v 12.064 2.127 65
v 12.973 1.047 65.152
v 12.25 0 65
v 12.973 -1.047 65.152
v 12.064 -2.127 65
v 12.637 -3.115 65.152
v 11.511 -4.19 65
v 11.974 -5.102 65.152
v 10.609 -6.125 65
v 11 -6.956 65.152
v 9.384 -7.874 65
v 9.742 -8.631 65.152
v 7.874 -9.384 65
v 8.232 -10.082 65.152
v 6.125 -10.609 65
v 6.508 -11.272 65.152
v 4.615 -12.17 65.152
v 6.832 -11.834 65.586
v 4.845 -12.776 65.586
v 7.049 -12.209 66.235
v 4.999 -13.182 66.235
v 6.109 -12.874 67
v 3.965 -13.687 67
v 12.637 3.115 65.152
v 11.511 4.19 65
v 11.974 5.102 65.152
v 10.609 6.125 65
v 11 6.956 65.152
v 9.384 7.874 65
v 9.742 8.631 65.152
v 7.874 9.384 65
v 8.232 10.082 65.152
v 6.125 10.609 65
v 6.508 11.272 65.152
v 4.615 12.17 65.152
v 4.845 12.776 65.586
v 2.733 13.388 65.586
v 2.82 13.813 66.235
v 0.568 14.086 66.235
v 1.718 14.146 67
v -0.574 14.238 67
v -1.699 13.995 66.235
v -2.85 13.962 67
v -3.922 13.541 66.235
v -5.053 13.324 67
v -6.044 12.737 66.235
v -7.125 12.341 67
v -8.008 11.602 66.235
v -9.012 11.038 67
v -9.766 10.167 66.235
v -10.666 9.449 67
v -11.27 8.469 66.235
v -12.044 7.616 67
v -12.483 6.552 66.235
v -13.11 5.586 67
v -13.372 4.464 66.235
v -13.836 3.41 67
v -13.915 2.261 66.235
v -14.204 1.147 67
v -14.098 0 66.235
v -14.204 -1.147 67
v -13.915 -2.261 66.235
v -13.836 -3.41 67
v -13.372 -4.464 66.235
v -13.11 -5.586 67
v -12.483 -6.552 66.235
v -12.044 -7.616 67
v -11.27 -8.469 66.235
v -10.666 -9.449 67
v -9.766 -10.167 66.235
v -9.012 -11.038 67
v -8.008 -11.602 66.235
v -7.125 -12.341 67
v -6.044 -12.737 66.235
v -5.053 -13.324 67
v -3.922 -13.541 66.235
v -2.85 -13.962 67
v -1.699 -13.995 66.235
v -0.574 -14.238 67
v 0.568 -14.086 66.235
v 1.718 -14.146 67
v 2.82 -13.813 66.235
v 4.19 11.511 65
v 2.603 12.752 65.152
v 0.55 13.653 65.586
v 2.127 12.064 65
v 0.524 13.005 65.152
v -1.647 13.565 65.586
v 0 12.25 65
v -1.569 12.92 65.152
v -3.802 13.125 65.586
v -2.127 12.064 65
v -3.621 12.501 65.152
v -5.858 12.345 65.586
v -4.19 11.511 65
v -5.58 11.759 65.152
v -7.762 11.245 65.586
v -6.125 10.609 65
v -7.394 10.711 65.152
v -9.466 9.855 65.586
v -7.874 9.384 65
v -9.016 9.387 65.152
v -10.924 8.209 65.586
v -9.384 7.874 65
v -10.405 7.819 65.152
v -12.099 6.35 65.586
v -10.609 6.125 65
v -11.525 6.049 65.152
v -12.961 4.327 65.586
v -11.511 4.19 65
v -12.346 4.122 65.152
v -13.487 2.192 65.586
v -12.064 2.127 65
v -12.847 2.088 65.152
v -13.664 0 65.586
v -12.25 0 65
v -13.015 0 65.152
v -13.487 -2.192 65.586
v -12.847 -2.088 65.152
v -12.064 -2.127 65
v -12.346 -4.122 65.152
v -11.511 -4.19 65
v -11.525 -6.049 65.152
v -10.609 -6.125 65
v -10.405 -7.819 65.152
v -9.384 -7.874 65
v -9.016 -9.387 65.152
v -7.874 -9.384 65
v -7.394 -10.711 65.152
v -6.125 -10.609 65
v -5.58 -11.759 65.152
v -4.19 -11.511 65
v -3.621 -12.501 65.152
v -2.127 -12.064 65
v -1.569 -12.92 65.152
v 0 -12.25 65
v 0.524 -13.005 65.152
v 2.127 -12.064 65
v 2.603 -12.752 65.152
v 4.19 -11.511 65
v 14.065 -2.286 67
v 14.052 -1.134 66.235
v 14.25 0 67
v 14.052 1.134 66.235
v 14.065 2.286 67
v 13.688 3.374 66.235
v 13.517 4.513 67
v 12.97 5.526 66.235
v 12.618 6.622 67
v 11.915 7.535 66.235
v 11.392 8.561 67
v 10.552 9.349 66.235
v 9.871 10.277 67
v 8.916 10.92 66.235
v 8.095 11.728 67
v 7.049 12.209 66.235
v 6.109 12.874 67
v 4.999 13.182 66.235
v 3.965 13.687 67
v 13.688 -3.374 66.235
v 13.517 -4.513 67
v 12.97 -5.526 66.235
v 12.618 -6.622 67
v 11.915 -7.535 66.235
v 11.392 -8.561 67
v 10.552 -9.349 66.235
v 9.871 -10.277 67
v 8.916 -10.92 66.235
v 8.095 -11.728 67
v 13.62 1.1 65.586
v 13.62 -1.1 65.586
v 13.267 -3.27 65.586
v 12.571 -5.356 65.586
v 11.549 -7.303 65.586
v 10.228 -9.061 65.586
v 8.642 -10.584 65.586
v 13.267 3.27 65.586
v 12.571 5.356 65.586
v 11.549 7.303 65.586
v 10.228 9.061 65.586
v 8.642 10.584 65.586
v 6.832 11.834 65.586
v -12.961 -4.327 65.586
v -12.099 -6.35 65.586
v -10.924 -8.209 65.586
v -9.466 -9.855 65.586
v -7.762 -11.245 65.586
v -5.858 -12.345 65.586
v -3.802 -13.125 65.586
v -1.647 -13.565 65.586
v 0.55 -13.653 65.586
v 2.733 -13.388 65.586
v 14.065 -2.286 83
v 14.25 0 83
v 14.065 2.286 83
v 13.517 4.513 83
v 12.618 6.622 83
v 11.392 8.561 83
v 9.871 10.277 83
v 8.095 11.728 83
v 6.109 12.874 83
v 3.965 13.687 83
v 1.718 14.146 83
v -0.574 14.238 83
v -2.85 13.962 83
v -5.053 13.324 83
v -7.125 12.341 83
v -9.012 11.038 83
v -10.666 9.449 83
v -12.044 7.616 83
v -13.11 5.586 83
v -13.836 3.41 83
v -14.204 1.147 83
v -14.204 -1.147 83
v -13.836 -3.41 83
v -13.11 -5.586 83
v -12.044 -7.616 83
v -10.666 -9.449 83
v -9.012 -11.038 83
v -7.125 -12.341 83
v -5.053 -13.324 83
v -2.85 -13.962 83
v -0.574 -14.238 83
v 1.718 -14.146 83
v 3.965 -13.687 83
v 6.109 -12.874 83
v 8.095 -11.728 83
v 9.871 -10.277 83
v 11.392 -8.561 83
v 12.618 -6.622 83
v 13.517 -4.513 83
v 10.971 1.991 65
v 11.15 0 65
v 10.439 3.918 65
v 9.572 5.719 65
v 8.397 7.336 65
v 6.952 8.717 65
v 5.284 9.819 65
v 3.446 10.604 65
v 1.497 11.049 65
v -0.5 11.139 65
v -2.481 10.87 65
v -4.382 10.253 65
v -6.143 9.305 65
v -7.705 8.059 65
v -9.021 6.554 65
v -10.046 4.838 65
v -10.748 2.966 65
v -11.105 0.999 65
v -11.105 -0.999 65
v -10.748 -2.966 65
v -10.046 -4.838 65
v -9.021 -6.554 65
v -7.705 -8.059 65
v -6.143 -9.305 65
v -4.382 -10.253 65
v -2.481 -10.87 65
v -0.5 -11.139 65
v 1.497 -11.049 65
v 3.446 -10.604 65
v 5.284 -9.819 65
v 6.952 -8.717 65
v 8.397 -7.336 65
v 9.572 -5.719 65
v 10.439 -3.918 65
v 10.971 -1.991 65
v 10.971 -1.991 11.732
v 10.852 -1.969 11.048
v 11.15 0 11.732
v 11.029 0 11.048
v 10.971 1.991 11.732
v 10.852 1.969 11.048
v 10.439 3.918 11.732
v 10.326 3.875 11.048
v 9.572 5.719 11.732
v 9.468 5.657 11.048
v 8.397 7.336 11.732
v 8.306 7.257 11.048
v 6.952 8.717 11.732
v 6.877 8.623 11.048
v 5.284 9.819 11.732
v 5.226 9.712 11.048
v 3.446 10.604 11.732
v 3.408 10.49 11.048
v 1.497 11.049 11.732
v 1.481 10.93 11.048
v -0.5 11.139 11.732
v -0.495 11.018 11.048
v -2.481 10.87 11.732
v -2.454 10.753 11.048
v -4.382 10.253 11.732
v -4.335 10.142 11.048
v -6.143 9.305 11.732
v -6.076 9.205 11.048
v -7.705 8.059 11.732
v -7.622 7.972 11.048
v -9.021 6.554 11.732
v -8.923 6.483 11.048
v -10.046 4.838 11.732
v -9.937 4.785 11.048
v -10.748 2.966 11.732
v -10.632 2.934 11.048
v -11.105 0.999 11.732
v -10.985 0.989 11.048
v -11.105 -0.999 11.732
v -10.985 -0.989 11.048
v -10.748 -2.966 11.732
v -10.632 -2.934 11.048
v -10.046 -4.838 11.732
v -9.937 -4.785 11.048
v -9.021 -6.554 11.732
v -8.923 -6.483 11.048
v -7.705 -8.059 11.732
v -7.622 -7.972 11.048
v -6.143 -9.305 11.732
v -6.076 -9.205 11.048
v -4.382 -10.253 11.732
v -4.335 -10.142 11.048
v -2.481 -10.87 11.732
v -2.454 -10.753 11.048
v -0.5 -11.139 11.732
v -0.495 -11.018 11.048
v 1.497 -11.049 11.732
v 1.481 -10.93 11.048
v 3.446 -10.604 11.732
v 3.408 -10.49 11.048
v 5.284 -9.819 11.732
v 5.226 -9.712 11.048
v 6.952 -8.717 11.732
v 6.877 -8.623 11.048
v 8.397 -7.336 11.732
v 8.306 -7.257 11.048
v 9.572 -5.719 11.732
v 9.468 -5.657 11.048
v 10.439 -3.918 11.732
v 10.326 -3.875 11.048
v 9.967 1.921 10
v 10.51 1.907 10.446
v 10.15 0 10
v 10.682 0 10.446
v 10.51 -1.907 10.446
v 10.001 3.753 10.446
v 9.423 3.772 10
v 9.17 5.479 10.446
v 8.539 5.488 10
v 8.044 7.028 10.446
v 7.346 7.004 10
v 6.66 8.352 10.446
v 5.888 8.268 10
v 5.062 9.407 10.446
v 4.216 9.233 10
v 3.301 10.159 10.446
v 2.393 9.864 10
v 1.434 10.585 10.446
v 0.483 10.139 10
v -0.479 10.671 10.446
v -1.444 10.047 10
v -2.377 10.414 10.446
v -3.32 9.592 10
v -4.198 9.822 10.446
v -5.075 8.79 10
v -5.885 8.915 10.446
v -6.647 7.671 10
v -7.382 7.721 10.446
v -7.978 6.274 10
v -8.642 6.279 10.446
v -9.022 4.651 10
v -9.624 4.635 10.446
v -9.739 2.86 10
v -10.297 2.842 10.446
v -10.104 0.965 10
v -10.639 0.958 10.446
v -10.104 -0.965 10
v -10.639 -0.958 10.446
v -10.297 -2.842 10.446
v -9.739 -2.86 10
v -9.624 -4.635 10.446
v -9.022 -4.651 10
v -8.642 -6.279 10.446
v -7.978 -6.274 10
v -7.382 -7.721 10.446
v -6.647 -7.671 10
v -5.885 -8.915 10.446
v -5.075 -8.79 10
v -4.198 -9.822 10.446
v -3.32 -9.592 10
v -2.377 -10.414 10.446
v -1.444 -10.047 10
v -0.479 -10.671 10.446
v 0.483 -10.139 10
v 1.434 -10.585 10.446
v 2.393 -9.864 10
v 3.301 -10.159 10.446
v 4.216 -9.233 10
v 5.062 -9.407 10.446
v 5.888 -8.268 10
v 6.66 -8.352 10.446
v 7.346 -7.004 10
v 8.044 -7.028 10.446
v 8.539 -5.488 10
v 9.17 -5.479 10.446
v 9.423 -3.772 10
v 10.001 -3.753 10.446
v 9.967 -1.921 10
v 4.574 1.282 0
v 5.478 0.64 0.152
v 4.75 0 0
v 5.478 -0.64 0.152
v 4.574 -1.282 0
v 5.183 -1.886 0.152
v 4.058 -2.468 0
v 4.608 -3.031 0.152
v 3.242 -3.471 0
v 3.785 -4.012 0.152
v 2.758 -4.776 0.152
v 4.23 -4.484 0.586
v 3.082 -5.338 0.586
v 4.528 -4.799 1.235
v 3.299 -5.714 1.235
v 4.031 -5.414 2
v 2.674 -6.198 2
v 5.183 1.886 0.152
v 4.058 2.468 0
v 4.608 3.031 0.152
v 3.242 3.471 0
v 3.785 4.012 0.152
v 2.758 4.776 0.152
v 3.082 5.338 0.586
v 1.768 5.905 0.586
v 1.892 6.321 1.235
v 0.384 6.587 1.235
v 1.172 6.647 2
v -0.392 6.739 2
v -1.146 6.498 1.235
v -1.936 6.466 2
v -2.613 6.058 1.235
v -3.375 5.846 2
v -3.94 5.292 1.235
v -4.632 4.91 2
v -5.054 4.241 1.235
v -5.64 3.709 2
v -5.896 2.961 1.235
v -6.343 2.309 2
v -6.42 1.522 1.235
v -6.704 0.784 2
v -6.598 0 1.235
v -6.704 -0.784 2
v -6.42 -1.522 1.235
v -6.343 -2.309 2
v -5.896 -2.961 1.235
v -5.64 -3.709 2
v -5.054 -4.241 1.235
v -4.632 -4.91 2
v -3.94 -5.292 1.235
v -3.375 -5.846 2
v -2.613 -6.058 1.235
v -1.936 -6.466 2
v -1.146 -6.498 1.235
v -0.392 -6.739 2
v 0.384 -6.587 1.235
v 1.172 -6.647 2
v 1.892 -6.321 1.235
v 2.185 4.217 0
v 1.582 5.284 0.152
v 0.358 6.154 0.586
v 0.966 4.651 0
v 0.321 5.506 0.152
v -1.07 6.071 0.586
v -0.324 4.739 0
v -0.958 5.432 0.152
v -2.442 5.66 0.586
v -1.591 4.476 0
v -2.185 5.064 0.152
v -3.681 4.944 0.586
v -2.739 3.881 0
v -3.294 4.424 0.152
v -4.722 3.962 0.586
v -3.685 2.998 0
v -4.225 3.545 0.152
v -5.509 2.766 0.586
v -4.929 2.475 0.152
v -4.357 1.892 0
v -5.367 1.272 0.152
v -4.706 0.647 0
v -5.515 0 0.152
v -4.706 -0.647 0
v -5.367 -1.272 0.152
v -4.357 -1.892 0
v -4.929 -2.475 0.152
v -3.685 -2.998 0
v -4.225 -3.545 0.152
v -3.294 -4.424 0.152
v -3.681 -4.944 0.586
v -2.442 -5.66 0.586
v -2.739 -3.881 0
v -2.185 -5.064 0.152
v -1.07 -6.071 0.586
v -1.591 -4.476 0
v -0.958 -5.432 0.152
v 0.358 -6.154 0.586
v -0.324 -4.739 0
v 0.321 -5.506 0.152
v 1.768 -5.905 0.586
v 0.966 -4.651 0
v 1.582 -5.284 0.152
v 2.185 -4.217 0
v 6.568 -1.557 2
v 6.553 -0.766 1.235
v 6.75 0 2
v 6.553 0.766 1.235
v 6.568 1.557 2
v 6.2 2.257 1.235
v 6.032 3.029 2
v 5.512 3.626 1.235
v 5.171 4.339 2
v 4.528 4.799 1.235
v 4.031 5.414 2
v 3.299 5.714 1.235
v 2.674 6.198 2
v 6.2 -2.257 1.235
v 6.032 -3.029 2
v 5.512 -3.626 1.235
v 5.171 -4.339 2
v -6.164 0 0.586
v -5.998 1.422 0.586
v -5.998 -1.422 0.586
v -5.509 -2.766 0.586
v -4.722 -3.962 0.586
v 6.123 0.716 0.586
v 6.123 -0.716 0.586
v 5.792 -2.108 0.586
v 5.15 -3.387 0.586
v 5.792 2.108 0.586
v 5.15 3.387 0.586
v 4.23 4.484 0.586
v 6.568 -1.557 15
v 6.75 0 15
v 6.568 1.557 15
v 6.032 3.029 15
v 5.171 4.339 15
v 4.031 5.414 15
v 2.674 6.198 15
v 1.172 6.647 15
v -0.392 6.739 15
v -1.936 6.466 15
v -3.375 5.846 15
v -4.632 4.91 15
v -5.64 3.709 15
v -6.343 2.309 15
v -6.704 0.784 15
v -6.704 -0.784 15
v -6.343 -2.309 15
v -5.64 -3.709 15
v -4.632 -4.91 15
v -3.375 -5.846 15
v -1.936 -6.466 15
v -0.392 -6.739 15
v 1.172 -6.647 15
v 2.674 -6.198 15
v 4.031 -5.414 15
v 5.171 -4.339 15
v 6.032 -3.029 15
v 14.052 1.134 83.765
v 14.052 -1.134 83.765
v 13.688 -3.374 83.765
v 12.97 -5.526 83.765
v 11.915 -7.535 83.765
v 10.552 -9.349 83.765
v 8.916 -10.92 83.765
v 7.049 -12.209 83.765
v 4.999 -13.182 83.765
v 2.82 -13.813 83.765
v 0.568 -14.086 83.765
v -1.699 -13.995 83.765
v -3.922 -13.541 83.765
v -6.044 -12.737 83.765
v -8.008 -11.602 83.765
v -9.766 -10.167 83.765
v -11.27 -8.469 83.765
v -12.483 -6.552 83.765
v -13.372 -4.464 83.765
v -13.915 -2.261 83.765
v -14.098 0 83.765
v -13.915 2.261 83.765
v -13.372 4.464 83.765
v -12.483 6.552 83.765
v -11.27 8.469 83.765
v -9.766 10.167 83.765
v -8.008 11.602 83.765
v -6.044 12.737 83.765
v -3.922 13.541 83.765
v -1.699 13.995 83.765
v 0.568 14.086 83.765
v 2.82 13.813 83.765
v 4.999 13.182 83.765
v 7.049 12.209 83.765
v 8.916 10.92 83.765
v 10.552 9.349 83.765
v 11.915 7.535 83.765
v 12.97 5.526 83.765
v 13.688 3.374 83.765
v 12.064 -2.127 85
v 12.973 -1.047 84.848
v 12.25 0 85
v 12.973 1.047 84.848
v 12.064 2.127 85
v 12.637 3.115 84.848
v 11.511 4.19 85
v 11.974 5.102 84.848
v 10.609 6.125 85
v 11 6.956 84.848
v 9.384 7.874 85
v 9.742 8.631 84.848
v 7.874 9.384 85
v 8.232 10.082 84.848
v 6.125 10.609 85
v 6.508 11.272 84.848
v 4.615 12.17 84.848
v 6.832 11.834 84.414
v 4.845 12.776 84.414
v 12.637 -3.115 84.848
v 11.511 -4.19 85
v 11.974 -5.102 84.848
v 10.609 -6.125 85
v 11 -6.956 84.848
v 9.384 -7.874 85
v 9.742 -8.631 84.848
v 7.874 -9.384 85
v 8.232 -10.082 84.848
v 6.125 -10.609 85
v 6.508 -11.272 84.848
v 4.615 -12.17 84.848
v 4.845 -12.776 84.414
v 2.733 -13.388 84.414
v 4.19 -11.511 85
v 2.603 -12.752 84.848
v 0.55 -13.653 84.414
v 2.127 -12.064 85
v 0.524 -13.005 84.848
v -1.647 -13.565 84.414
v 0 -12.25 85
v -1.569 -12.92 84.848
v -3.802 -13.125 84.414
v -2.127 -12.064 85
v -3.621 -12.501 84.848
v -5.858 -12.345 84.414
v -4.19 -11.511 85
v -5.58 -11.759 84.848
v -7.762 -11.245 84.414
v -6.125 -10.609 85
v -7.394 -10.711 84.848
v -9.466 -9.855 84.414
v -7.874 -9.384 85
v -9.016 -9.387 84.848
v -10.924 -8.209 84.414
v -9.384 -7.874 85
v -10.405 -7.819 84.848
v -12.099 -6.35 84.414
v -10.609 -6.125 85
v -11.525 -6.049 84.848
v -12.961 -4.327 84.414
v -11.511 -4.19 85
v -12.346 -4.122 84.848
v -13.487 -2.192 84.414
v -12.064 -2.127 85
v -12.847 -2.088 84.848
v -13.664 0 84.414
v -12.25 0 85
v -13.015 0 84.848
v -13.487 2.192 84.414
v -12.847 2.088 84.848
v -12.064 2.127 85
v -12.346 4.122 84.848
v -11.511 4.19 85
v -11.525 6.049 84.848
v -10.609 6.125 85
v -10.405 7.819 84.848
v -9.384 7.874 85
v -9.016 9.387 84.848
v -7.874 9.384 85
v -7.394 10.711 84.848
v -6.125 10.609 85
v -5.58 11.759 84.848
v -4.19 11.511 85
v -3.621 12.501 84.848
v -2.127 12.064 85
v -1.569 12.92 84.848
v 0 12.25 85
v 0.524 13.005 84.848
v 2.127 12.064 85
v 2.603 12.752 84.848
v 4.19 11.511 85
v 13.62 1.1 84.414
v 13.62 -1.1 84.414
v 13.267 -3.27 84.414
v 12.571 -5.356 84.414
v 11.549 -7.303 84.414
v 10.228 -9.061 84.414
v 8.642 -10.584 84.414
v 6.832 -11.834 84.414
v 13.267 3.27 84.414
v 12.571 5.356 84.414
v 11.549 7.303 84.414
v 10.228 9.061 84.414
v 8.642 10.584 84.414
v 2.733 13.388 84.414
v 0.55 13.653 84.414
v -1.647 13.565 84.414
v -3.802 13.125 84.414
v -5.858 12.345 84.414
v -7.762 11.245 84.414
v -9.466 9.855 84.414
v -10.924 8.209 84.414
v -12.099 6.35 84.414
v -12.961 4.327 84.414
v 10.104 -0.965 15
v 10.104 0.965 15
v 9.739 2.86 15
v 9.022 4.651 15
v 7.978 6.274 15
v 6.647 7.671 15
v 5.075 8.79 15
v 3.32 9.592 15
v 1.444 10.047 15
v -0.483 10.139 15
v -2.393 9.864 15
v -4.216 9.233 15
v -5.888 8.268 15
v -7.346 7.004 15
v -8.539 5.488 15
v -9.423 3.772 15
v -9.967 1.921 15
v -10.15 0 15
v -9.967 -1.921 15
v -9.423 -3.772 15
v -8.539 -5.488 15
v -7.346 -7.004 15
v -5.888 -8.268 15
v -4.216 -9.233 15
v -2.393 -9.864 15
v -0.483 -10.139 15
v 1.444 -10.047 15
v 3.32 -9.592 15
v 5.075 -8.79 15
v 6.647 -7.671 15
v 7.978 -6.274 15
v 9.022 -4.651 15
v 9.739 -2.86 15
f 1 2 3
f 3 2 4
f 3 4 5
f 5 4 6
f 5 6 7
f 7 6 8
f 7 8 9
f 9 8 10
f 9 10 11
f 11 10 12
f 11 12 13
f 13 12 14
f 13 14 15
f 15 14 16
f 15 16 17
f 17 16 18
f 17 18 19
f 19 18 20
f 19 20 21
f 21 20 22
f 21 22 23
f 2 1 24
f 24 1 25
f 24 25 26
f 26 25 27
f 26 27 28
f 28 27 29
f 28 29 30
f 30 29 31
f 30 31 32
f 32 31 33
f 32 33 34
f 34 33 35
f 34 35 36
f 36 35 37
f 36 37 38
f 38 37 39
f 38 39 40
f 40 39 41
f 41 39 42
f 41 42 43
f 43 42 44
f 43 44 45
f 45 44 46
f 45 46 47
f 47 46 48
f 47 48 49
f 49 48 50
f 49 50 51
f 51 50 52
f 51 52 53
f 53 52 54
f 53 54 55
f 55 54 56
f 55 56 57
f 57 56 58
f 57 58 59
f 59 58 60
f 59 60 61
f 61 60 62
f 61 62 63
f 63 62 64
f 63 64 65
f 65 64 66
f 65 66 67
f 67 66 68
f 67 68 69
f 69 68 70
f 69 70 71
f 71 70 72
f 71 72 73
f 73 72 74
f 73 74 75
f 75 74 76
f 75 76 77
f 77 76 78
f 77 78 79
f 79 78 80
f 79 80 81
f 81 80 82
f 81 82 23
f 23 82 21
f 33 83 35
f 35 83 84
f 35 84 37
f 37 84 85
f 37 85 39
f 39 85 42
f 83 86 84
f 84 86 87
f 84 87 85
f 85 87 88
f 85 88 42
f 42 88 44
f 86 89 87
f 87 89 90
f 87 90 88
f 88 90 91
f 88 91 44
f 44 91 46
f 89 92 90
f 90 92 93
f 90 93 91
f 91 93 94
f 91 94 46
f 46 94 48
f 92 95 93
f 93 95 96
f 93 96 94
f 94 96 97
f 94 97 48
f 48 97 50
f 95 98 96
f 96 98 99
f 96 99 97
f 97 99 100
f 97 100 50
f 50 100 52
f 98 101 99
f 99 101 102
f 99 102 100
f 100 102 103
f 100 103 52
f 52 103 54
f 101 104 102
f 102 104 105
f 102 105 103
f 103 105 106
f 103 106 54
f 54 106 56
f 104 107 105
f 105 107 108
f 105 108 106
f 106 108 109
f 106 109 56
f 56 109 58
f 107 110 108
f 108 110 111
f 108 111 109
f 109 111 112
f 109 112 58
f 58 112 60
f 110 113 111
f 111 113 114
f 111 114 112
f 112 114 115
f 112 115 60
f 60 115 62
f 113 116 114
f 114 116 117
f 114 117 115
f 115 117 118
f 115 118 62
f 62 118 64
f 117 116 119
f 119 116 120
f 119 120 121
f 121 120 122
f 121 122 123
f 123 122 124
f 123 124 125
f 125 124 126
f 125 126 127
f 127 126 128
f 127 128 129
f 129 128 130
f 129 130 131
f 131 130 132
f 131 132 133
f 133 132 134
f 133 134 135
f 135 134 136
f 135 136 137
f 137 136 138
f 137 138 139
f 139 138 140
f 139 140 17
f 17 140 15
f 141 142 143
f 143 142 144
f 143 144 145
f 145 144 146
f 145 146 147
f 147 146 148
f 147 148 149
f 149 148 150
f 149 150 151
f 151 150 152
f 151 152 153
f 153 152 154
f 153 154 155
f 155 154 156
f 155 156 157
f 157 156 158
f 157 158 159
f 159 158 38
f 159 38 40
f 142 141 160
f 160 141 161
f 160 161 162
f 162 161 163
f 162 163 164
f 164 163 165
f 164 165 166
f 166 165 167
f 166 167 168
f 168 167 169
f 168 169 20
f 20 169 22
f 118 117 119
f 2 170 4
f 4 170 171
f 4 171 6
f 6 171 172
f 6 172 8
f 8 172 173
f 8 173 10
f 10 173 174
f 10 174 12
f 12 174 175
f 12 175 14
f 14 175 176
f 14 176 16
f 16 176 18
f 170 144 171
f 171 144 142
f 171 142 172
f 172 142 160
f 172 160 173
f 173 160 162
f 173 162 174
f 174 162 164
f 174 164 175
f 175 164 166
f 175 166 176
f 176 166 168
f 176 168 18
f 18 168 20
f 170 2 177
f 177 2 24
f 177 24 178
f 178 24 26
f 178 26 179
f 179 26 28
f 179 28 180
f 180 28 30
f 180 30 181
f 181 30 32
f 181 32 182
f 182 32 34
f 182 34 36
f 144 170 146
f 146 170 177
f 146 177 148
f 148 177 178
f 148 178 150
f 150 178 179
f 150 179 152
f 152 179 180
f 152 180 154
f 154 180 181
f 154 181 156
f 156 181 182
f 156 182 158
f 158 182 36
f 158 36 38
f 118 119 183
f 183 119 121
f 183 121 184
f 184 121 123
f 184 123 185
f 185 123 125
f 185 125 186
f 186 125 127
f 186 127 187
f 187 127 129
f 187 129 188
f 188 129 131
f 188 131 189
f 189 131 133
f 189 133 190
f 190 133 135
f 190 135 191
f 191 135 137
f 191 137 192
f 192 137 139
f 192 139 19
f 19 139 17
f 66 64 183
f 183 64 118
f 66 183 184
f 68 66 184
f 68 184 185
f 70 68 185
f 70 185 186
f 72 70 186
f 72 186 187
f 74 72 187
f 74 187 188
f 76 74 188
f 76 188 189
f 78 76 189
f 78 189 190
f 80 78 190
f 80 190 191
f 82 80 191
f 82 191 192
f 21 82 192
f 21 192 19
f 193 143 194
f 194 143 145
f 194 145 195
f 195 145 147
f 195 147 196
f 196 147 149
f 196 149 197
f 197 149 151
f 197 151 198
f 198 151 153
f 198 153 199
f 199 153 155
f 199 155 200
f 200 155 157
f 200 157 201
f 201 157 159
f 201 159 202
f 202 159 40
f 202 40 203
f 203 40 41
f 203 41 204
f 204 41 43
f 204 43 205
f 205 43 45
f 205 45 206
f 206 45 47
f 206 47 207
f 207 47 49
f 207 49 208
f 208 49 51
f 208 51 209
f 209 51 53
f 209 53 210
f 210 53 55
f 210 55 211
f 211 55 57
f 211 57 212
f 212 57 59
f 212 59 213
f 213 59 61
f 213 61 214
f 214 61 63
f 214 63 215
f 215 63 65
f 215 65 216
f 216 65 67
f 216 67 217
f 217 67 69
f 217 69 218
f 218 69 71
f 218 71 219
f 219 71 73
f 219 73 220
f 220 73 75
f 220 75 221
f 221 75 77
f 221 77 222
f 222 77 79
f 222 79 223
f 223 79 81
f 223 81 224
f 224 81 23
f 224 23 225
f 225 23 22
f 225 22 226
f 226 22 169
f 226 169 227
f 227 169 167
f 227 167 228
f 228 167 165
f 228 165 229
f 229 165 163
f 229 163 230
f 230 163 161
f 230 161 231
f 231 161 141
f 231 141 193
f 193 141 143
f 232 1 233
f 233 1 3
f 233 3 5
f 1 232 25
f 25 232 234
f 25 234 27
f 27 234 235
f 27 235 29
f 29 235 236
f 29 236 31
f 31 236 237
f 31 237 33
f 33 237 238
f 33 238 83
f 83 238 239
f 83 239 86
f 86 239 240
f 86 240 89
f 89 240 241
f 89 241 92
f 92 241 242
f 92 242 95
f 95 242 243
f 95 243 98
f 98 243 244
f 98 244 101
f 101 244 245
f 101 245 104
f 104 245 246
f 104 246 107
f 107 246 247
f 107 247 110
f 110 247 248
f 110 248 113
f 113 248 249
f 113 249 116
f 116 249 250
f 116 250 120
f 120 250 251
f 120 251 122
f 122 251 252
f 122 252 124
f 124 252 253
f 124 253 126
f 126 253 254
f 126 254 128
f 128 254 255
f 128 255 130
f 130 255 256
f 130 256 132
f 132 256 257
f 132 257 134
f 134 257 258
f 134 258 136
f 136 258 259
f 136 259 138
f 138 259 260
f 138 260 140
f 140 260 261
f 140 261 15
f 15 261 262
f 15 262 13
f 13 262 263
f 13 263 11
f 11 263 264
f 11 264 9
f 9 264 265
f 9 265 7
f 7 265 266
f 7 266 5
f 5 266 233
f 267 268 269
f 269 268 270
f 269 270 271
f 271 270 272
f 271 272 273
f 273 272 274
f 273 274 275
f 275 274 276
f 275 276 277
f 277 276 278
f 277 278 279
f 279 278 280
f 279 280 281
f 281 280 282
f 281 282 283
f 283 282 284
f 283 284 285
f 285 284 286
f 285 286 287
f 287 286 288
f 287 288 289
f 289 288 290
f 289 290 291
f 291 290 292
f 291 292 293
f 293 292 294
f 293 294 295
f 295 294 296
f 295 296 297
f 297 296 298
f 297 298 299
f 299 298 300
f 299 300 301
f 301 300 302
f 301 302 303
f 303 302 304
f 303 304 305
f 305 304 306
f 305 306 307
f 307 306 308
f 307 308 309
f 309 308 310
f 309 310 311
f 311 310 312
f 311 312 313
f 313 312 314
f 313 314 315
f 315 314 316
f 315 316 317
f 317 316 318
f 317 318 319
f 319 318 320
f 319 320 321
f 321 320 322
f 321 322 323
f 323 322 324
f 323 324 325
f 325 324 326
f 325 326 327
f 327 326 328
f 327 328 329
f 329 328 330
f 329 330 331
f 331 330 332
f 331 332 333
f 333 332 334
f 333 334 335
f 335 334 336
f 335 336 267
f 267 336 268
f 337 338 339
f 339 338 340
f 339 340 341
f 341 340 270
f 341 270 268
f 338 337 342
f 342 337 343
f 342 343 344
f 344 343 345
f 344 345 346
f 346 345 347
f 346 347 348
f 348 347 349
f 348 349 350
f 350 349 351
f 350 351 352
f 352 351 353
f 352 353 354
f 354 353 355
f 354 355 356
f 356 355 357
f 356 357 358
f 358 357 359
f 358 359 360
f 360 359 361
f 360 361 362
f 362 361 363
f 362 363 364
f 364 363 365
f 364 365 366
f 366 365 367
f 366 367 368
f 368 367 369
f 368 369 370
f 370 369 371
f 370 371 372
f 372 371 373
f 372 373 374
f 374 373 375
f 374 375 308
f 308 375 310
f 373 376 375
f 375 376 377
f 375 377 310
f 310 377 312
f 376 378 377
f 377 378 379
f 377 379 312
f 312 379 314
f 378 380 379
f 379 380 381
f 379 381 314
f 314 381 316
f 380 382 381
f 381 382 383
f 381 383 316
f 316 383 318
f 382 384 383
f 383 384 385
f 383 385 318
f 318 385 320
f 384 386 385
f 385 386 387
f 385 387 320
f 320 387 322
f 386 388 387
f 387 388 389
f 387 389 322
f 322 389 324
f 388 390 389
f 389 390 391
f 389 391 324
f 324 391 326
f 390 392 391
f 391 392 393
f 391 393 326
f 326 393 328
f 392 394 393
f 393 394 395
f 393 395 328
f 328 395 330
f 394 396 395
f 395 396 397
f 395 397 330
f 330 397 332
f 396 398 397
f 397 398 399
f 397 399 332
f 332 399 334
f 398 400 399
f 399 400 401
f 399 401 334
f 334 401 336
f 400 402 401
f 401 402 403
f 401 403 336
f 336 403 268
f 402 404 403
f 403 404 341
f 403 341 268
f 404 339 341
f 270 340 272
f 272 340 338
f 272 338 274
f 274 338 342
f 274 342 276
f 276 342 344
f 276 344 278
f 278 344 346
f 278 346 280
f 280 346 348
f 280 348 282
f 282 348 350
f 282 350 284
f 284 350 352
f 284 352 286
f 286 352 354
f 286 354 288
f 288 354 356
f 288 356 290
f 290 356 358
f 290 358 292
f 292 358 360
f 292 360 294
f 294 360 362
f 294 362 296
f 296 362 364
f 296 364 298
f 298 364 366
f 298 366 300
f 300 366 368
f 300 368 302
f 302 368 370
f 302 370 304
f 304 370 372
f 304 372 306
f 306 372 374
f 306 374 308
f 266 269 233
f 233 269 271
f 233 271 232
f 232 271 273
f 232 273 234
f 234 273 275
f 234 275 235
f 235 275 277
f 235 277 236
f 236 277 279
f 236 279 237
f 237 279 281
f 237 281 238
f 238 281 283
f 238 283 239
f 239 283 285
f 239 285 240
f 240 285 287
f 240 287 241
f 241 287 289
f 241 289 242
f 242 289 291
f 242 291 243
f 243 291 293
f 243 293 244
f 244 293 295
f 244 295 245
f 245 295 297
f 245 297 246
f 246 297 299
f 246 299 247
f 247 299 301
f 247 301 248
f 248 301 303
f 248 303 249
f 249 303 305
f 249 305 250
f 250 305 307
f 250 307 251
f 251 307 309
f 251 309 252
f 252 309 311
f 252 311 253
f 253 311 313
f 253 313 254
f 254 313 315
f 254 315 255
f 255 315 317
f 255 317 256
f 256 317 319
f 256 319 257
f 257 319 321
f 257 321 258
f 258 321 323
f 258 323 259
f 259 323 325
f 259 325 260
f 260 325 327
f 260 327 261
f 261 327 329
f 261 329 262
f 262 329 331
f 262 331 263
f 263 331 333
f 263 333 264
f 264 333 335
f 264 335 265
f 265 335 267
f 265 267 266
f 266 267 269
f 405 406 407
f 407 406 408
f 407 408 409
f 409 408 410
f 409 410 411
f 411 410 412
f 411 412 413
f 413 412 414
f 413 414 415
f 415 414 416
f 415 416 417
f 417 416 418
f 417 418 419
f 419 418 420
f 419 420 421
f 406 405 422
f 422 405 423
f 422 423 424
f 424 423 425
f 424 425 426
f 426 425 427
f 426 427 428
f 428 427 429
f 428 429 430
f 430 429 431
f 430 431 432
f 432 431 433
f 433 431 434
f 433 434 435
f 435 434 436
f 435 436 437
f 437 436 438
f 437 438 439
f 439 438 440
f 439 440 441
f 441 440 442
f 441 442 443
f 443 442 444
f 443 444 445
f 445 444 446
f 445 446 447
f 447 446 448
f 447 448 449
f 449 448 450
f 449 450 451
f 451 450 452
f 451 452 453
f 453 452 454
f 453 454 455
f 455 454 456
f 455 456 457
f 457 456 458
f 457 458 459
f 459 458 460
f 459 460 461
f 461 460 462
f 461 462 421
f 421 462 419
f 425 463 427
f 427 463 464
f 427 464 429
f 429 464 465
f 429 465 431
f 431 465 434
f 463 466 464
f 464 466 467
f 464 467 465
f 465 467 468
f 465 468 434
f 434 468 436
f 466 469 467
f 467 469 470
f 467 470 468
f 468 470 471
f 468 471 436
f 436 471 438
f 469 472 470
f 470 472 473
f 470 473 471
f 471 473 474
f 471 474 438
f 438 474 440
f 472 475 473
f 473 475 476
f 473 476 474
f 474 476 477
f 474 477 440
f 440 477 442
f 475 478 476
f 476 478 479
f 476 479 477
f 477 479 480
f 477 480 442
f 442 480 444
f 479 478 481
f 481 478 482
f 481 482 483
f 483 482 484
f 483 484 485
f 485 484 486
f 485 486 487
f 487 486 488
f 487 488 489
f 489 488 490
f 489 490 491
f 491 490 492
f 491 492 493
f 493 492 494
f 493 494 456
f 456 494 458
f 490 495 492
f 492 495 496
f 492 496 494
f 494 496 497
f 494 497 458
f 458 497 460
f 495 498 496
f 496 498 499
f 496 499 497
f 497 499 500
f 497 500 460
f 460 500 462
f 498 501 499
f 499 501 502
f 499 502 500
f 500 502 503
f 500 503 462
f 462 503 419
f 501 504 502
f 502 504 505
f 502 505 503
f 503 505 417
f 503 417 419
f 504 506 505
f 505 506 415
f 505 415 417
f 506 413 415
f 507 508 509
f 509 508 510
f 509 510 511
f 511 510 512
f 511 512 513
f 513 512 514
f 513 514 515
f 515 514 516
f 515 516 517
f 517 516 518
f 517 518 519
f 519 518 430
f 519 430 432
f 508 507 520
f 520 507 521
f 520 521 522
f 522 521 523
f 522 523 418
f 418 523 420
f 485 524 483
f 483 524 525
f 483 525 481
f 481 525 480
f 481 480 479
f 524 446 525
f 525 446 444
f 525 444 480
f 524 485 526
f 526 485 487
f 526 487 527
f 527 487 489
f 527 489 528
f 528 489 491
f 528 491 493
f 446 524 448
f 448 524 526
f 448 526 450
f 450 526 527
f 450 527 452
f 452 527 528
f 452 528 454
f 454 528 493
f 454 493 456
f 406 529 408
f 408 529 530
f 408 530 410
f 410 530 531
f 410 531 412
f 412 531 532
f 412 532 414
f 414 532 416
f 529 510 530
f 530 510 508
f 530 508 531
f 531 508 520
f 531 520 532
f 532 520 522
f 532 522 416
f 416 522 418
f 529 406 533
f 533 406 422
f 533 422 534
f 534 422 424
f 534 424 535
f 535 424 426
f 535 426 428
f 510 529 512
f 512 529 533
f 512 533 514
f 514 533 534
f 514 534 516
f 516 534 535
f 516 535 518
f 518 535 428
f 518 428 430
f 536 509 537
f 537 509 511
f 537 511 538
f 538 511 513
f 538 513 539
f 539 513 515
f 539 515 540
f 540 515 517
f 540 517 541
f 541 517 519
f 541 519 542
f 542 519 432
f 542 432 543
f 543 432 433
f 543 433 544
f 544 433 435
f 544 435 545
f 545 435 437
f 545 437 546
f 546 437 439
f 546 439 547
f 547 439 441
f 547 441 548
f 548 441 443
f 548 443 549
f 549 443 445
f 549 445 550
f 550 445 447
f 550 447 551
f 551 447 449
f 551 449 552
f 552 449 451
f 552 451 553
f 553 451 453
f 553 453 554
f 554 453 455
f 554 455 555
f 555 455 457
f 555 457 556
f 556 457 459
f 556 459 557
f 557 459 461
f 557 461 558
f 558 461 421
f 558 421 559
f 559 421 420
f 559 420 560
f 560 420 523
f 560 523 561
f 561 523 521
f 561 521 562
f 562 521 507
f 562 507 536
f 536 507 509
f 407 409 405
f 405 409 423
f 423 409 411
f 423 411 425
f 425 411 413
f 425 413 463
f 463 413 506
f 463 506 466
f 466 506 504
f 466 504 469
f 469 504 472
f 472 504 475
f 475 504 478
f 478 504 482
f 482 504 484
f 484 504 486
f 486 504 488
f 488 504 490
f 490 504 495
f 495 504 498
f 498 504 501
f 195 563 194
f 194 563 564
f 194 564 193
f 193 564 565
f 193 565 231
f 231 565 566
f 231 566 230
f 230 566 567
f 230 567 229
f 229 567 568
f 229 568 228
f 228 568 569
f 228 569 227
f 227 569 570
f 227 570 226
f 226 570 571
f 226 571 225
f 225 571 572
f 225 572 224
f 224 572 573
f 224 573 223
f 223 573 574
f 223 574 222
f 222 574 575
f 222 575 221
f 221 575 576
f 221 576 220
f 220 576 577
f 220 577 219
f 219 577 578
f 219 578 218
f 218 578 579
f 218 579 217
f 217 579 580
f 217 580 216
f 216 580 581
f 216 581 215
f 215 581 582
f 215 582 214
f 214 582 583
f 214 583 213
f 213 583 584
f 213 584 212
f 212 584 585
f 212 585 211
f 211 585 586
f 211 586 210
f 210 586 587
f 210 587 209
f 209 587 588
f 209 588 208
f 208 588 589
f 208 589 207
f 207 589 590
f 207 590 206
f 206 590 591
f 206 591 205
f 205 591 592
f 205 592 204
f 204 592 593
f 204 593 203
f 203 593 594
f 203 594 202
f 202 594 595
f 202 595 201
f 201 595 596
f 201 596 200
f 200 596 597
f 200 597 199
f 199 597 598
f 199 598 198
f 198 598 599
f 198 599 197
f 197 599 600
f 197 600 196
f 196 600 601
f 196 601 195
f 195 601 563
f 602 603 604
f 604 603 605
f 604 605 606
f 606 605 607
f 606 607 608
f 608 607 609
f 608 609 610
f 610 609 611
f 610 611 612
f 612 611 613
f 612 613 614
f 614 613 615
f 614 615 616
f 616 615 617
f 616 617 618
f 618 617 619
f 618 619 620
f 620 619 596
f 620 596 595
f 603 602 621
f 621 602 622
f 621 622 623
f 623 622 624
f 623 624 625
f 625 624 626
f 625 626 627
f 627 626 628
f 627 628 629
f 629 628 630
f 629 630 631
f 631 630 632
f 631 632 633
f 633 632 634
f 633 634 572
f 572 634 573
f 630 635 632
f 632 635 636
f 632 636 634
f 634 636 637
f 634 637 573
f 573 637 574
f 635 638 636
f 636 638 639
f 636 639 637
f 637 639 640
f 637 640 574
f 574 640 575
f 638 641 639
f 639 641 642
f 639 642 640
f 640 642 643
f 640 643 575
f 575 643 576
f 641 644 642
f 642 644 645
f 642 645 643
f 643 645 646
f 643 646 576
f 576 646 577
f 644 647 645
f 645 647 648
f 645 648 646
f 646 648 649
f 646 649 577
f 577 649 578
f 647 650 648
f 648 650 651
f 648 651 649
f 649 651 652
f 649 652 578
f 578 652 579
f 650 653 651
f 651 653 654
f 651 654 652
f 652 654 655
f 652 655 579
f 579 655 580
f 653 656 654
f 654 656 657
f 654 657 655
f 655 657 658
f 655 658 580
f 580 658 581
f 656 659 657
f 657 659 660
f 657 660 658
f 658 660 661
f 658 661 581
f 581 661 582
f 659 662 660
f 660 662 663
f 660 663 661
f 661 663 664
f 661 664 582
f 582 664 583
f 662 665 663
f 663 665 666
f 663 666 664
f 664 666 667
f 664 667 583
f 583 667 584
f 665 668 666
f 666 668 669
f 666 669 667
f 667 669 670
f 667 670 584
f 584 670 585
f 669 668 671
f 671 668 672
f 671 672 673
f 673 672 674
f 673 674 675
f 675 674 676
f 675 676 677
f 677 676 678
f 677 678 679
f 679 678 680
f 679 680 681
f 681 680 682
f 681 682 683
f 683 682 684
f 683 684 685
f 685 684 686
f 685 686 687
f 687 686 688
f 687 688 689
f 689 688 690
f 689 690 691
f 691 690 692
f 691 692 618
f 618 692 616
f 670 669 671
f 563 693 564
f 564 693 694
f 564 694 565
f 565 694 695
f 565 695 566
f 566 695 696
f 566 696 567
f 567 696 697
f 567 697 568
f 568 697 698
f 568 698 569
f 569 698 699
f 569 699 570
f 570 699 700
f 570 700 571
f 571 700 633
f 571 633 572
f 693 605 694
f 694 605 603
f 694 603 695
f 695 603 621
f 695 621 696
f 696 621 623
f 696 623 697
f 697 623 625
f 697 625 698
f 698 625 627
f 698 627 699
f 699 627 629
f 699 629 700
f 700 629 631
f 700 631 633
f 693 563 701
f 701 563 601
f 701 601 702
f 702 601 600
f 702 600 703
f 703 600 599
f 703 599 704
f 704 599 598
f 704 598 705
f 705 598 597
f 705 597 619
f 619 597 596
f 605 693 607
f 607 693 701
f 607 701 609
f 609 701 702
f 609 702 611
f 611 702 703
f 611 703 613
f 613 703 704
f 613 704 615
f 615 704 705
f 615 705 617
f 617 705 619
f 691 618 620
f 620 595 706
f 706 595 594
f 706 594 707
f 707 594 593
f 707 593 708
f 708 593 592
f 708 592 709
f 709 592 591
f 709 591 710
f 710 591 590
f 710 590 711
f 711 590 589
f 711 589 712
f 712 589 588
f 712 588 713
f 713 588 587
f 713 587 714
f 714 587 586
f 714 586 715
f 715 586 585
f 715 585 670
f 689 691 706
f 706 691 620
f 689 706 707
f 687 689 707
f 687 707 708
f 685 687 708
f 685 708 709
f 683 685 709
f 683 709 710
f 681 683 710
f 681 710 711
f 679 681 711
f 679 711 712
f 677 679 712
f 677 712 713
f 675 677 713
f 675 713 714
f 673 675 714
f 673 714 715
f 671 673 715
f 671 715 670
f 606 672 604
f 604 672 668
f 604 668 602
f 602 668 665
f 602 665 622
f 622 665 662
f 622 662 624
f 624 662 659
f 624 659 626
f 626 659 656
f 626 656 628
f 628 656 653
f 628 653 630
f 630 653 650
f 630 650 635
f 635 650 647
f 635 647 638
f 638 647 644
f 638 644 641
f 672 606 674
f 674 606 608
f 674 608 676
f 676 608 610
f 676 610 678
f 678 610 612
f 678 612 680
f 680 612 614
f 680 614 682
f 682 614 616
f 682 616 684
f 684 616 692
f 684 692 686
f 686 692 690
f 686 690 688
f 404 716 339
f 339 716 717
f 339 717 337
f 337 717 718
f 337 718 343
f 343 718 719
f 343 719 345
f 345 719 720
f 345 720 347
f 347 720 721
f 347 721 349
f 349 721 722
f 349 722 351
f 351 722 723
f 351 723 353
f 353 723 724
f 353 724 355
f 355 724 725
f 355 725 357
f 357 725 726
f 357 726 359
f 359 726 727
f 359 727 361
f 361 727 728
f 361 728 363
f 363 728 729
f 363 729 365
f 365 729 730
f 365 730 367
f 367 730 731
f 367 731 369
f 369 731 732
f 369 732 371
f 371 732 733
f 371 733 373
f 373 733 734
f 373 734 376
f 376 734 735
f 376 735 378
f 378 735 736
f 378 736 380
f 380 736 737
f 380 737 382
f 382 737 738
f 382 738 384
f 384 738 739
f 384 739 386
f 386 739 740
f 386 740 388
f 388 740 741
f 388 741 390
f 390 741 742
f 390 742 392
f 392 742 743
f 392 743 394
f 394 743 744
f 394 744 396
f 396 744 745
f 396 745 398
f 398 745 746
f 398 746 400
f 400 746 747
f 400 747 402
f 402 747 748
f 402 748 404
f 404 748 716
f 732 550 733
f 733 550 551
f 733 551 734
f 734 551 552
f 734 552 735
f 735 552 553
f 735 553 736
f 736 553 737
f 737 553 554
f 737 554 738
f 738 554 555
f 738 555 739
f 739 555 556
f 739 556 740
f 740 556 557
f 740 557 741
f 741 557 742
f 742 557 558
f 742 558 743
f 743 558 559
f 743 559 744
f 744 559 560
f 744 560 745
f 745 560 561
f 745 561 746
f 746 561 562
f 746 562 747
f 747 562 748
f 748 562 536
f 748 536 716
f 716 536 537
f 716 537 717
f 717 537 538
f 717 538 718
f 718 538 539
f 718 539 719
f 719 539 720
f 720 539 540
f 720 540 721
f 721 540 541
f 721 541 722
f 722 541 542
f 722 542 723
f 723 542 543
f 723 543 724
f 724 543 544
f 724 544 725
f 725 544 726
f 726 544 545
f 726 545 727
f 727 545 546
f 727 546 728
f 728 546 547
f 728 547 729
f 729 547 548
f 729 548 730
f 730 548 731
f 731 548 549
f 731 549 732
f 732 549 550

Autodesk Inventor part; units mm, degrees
ref_plane "YZ Plane" through (0, 0, 0) normal (1, 0, 0) x (0, 1, 0)
ref_plane "XZ Plane" through (0, 0, 0) normal (0, 1, 0) x (-1, 0, 0)
ref_plane "XY Plane" through (0, 0, 0) normal (0, 0, 1) x (1, 0, 0)
sketch "Sketch1" plane through (0, 0, 0) normal (0, 0, 1) x (1, 0, 0)
  circle A0 centre (0, 0) radius 6.75
  dimension "d0" = 13.5
extrude "Extrusion1" add sketch "Sketch1" along normal blind 15
sketch "Sketch2" plane through (0, 0, 15) normal (0, 0, 1) x (1, 0, 0)
  circle A0 centre (0, 0) radius 11.15
  dimension "d3" = 22.3
extrude "Extrusion3" add sketch "Sketch2" along normal blind 50
sketch "Sketch3" plane through (0, 0, 15) normal (0, 0, -1) x (-1, 0, 0)
  circle A0 centre (0, 0) radius 10.15
  circle A1 centre (0, 0) radius 11.15
  dimension "d8" = 20.3
  dimension "d9" = 22.3
extrude "Extrusion4" add sketch "Sketch3" along normal blind 5
sketch "Sketch4" plane through (0, 0, 65) normal (0, 0, 1) x (1, 0, 0)
  circle A0 centre (0, 0) radius 14.25
  dimension "d12" = 28.5
extrude "Extrusion5" add sketch "Sketch4" along normal blind 20
fillet "Fillet1" radius 2 1 edges at (-14.25, 0, 85)
fillet "Fillet2" radius 2 1 edges at (-6.75, 0, 0)
fillet "Fillet3" radius 2 1 edges at (11.15, 0, 10)
fillet "Fillet4" radius 2 1 edges at (-14.25, 0, 65)
properties part number "Elbow_Parallel_Rod_V1"
